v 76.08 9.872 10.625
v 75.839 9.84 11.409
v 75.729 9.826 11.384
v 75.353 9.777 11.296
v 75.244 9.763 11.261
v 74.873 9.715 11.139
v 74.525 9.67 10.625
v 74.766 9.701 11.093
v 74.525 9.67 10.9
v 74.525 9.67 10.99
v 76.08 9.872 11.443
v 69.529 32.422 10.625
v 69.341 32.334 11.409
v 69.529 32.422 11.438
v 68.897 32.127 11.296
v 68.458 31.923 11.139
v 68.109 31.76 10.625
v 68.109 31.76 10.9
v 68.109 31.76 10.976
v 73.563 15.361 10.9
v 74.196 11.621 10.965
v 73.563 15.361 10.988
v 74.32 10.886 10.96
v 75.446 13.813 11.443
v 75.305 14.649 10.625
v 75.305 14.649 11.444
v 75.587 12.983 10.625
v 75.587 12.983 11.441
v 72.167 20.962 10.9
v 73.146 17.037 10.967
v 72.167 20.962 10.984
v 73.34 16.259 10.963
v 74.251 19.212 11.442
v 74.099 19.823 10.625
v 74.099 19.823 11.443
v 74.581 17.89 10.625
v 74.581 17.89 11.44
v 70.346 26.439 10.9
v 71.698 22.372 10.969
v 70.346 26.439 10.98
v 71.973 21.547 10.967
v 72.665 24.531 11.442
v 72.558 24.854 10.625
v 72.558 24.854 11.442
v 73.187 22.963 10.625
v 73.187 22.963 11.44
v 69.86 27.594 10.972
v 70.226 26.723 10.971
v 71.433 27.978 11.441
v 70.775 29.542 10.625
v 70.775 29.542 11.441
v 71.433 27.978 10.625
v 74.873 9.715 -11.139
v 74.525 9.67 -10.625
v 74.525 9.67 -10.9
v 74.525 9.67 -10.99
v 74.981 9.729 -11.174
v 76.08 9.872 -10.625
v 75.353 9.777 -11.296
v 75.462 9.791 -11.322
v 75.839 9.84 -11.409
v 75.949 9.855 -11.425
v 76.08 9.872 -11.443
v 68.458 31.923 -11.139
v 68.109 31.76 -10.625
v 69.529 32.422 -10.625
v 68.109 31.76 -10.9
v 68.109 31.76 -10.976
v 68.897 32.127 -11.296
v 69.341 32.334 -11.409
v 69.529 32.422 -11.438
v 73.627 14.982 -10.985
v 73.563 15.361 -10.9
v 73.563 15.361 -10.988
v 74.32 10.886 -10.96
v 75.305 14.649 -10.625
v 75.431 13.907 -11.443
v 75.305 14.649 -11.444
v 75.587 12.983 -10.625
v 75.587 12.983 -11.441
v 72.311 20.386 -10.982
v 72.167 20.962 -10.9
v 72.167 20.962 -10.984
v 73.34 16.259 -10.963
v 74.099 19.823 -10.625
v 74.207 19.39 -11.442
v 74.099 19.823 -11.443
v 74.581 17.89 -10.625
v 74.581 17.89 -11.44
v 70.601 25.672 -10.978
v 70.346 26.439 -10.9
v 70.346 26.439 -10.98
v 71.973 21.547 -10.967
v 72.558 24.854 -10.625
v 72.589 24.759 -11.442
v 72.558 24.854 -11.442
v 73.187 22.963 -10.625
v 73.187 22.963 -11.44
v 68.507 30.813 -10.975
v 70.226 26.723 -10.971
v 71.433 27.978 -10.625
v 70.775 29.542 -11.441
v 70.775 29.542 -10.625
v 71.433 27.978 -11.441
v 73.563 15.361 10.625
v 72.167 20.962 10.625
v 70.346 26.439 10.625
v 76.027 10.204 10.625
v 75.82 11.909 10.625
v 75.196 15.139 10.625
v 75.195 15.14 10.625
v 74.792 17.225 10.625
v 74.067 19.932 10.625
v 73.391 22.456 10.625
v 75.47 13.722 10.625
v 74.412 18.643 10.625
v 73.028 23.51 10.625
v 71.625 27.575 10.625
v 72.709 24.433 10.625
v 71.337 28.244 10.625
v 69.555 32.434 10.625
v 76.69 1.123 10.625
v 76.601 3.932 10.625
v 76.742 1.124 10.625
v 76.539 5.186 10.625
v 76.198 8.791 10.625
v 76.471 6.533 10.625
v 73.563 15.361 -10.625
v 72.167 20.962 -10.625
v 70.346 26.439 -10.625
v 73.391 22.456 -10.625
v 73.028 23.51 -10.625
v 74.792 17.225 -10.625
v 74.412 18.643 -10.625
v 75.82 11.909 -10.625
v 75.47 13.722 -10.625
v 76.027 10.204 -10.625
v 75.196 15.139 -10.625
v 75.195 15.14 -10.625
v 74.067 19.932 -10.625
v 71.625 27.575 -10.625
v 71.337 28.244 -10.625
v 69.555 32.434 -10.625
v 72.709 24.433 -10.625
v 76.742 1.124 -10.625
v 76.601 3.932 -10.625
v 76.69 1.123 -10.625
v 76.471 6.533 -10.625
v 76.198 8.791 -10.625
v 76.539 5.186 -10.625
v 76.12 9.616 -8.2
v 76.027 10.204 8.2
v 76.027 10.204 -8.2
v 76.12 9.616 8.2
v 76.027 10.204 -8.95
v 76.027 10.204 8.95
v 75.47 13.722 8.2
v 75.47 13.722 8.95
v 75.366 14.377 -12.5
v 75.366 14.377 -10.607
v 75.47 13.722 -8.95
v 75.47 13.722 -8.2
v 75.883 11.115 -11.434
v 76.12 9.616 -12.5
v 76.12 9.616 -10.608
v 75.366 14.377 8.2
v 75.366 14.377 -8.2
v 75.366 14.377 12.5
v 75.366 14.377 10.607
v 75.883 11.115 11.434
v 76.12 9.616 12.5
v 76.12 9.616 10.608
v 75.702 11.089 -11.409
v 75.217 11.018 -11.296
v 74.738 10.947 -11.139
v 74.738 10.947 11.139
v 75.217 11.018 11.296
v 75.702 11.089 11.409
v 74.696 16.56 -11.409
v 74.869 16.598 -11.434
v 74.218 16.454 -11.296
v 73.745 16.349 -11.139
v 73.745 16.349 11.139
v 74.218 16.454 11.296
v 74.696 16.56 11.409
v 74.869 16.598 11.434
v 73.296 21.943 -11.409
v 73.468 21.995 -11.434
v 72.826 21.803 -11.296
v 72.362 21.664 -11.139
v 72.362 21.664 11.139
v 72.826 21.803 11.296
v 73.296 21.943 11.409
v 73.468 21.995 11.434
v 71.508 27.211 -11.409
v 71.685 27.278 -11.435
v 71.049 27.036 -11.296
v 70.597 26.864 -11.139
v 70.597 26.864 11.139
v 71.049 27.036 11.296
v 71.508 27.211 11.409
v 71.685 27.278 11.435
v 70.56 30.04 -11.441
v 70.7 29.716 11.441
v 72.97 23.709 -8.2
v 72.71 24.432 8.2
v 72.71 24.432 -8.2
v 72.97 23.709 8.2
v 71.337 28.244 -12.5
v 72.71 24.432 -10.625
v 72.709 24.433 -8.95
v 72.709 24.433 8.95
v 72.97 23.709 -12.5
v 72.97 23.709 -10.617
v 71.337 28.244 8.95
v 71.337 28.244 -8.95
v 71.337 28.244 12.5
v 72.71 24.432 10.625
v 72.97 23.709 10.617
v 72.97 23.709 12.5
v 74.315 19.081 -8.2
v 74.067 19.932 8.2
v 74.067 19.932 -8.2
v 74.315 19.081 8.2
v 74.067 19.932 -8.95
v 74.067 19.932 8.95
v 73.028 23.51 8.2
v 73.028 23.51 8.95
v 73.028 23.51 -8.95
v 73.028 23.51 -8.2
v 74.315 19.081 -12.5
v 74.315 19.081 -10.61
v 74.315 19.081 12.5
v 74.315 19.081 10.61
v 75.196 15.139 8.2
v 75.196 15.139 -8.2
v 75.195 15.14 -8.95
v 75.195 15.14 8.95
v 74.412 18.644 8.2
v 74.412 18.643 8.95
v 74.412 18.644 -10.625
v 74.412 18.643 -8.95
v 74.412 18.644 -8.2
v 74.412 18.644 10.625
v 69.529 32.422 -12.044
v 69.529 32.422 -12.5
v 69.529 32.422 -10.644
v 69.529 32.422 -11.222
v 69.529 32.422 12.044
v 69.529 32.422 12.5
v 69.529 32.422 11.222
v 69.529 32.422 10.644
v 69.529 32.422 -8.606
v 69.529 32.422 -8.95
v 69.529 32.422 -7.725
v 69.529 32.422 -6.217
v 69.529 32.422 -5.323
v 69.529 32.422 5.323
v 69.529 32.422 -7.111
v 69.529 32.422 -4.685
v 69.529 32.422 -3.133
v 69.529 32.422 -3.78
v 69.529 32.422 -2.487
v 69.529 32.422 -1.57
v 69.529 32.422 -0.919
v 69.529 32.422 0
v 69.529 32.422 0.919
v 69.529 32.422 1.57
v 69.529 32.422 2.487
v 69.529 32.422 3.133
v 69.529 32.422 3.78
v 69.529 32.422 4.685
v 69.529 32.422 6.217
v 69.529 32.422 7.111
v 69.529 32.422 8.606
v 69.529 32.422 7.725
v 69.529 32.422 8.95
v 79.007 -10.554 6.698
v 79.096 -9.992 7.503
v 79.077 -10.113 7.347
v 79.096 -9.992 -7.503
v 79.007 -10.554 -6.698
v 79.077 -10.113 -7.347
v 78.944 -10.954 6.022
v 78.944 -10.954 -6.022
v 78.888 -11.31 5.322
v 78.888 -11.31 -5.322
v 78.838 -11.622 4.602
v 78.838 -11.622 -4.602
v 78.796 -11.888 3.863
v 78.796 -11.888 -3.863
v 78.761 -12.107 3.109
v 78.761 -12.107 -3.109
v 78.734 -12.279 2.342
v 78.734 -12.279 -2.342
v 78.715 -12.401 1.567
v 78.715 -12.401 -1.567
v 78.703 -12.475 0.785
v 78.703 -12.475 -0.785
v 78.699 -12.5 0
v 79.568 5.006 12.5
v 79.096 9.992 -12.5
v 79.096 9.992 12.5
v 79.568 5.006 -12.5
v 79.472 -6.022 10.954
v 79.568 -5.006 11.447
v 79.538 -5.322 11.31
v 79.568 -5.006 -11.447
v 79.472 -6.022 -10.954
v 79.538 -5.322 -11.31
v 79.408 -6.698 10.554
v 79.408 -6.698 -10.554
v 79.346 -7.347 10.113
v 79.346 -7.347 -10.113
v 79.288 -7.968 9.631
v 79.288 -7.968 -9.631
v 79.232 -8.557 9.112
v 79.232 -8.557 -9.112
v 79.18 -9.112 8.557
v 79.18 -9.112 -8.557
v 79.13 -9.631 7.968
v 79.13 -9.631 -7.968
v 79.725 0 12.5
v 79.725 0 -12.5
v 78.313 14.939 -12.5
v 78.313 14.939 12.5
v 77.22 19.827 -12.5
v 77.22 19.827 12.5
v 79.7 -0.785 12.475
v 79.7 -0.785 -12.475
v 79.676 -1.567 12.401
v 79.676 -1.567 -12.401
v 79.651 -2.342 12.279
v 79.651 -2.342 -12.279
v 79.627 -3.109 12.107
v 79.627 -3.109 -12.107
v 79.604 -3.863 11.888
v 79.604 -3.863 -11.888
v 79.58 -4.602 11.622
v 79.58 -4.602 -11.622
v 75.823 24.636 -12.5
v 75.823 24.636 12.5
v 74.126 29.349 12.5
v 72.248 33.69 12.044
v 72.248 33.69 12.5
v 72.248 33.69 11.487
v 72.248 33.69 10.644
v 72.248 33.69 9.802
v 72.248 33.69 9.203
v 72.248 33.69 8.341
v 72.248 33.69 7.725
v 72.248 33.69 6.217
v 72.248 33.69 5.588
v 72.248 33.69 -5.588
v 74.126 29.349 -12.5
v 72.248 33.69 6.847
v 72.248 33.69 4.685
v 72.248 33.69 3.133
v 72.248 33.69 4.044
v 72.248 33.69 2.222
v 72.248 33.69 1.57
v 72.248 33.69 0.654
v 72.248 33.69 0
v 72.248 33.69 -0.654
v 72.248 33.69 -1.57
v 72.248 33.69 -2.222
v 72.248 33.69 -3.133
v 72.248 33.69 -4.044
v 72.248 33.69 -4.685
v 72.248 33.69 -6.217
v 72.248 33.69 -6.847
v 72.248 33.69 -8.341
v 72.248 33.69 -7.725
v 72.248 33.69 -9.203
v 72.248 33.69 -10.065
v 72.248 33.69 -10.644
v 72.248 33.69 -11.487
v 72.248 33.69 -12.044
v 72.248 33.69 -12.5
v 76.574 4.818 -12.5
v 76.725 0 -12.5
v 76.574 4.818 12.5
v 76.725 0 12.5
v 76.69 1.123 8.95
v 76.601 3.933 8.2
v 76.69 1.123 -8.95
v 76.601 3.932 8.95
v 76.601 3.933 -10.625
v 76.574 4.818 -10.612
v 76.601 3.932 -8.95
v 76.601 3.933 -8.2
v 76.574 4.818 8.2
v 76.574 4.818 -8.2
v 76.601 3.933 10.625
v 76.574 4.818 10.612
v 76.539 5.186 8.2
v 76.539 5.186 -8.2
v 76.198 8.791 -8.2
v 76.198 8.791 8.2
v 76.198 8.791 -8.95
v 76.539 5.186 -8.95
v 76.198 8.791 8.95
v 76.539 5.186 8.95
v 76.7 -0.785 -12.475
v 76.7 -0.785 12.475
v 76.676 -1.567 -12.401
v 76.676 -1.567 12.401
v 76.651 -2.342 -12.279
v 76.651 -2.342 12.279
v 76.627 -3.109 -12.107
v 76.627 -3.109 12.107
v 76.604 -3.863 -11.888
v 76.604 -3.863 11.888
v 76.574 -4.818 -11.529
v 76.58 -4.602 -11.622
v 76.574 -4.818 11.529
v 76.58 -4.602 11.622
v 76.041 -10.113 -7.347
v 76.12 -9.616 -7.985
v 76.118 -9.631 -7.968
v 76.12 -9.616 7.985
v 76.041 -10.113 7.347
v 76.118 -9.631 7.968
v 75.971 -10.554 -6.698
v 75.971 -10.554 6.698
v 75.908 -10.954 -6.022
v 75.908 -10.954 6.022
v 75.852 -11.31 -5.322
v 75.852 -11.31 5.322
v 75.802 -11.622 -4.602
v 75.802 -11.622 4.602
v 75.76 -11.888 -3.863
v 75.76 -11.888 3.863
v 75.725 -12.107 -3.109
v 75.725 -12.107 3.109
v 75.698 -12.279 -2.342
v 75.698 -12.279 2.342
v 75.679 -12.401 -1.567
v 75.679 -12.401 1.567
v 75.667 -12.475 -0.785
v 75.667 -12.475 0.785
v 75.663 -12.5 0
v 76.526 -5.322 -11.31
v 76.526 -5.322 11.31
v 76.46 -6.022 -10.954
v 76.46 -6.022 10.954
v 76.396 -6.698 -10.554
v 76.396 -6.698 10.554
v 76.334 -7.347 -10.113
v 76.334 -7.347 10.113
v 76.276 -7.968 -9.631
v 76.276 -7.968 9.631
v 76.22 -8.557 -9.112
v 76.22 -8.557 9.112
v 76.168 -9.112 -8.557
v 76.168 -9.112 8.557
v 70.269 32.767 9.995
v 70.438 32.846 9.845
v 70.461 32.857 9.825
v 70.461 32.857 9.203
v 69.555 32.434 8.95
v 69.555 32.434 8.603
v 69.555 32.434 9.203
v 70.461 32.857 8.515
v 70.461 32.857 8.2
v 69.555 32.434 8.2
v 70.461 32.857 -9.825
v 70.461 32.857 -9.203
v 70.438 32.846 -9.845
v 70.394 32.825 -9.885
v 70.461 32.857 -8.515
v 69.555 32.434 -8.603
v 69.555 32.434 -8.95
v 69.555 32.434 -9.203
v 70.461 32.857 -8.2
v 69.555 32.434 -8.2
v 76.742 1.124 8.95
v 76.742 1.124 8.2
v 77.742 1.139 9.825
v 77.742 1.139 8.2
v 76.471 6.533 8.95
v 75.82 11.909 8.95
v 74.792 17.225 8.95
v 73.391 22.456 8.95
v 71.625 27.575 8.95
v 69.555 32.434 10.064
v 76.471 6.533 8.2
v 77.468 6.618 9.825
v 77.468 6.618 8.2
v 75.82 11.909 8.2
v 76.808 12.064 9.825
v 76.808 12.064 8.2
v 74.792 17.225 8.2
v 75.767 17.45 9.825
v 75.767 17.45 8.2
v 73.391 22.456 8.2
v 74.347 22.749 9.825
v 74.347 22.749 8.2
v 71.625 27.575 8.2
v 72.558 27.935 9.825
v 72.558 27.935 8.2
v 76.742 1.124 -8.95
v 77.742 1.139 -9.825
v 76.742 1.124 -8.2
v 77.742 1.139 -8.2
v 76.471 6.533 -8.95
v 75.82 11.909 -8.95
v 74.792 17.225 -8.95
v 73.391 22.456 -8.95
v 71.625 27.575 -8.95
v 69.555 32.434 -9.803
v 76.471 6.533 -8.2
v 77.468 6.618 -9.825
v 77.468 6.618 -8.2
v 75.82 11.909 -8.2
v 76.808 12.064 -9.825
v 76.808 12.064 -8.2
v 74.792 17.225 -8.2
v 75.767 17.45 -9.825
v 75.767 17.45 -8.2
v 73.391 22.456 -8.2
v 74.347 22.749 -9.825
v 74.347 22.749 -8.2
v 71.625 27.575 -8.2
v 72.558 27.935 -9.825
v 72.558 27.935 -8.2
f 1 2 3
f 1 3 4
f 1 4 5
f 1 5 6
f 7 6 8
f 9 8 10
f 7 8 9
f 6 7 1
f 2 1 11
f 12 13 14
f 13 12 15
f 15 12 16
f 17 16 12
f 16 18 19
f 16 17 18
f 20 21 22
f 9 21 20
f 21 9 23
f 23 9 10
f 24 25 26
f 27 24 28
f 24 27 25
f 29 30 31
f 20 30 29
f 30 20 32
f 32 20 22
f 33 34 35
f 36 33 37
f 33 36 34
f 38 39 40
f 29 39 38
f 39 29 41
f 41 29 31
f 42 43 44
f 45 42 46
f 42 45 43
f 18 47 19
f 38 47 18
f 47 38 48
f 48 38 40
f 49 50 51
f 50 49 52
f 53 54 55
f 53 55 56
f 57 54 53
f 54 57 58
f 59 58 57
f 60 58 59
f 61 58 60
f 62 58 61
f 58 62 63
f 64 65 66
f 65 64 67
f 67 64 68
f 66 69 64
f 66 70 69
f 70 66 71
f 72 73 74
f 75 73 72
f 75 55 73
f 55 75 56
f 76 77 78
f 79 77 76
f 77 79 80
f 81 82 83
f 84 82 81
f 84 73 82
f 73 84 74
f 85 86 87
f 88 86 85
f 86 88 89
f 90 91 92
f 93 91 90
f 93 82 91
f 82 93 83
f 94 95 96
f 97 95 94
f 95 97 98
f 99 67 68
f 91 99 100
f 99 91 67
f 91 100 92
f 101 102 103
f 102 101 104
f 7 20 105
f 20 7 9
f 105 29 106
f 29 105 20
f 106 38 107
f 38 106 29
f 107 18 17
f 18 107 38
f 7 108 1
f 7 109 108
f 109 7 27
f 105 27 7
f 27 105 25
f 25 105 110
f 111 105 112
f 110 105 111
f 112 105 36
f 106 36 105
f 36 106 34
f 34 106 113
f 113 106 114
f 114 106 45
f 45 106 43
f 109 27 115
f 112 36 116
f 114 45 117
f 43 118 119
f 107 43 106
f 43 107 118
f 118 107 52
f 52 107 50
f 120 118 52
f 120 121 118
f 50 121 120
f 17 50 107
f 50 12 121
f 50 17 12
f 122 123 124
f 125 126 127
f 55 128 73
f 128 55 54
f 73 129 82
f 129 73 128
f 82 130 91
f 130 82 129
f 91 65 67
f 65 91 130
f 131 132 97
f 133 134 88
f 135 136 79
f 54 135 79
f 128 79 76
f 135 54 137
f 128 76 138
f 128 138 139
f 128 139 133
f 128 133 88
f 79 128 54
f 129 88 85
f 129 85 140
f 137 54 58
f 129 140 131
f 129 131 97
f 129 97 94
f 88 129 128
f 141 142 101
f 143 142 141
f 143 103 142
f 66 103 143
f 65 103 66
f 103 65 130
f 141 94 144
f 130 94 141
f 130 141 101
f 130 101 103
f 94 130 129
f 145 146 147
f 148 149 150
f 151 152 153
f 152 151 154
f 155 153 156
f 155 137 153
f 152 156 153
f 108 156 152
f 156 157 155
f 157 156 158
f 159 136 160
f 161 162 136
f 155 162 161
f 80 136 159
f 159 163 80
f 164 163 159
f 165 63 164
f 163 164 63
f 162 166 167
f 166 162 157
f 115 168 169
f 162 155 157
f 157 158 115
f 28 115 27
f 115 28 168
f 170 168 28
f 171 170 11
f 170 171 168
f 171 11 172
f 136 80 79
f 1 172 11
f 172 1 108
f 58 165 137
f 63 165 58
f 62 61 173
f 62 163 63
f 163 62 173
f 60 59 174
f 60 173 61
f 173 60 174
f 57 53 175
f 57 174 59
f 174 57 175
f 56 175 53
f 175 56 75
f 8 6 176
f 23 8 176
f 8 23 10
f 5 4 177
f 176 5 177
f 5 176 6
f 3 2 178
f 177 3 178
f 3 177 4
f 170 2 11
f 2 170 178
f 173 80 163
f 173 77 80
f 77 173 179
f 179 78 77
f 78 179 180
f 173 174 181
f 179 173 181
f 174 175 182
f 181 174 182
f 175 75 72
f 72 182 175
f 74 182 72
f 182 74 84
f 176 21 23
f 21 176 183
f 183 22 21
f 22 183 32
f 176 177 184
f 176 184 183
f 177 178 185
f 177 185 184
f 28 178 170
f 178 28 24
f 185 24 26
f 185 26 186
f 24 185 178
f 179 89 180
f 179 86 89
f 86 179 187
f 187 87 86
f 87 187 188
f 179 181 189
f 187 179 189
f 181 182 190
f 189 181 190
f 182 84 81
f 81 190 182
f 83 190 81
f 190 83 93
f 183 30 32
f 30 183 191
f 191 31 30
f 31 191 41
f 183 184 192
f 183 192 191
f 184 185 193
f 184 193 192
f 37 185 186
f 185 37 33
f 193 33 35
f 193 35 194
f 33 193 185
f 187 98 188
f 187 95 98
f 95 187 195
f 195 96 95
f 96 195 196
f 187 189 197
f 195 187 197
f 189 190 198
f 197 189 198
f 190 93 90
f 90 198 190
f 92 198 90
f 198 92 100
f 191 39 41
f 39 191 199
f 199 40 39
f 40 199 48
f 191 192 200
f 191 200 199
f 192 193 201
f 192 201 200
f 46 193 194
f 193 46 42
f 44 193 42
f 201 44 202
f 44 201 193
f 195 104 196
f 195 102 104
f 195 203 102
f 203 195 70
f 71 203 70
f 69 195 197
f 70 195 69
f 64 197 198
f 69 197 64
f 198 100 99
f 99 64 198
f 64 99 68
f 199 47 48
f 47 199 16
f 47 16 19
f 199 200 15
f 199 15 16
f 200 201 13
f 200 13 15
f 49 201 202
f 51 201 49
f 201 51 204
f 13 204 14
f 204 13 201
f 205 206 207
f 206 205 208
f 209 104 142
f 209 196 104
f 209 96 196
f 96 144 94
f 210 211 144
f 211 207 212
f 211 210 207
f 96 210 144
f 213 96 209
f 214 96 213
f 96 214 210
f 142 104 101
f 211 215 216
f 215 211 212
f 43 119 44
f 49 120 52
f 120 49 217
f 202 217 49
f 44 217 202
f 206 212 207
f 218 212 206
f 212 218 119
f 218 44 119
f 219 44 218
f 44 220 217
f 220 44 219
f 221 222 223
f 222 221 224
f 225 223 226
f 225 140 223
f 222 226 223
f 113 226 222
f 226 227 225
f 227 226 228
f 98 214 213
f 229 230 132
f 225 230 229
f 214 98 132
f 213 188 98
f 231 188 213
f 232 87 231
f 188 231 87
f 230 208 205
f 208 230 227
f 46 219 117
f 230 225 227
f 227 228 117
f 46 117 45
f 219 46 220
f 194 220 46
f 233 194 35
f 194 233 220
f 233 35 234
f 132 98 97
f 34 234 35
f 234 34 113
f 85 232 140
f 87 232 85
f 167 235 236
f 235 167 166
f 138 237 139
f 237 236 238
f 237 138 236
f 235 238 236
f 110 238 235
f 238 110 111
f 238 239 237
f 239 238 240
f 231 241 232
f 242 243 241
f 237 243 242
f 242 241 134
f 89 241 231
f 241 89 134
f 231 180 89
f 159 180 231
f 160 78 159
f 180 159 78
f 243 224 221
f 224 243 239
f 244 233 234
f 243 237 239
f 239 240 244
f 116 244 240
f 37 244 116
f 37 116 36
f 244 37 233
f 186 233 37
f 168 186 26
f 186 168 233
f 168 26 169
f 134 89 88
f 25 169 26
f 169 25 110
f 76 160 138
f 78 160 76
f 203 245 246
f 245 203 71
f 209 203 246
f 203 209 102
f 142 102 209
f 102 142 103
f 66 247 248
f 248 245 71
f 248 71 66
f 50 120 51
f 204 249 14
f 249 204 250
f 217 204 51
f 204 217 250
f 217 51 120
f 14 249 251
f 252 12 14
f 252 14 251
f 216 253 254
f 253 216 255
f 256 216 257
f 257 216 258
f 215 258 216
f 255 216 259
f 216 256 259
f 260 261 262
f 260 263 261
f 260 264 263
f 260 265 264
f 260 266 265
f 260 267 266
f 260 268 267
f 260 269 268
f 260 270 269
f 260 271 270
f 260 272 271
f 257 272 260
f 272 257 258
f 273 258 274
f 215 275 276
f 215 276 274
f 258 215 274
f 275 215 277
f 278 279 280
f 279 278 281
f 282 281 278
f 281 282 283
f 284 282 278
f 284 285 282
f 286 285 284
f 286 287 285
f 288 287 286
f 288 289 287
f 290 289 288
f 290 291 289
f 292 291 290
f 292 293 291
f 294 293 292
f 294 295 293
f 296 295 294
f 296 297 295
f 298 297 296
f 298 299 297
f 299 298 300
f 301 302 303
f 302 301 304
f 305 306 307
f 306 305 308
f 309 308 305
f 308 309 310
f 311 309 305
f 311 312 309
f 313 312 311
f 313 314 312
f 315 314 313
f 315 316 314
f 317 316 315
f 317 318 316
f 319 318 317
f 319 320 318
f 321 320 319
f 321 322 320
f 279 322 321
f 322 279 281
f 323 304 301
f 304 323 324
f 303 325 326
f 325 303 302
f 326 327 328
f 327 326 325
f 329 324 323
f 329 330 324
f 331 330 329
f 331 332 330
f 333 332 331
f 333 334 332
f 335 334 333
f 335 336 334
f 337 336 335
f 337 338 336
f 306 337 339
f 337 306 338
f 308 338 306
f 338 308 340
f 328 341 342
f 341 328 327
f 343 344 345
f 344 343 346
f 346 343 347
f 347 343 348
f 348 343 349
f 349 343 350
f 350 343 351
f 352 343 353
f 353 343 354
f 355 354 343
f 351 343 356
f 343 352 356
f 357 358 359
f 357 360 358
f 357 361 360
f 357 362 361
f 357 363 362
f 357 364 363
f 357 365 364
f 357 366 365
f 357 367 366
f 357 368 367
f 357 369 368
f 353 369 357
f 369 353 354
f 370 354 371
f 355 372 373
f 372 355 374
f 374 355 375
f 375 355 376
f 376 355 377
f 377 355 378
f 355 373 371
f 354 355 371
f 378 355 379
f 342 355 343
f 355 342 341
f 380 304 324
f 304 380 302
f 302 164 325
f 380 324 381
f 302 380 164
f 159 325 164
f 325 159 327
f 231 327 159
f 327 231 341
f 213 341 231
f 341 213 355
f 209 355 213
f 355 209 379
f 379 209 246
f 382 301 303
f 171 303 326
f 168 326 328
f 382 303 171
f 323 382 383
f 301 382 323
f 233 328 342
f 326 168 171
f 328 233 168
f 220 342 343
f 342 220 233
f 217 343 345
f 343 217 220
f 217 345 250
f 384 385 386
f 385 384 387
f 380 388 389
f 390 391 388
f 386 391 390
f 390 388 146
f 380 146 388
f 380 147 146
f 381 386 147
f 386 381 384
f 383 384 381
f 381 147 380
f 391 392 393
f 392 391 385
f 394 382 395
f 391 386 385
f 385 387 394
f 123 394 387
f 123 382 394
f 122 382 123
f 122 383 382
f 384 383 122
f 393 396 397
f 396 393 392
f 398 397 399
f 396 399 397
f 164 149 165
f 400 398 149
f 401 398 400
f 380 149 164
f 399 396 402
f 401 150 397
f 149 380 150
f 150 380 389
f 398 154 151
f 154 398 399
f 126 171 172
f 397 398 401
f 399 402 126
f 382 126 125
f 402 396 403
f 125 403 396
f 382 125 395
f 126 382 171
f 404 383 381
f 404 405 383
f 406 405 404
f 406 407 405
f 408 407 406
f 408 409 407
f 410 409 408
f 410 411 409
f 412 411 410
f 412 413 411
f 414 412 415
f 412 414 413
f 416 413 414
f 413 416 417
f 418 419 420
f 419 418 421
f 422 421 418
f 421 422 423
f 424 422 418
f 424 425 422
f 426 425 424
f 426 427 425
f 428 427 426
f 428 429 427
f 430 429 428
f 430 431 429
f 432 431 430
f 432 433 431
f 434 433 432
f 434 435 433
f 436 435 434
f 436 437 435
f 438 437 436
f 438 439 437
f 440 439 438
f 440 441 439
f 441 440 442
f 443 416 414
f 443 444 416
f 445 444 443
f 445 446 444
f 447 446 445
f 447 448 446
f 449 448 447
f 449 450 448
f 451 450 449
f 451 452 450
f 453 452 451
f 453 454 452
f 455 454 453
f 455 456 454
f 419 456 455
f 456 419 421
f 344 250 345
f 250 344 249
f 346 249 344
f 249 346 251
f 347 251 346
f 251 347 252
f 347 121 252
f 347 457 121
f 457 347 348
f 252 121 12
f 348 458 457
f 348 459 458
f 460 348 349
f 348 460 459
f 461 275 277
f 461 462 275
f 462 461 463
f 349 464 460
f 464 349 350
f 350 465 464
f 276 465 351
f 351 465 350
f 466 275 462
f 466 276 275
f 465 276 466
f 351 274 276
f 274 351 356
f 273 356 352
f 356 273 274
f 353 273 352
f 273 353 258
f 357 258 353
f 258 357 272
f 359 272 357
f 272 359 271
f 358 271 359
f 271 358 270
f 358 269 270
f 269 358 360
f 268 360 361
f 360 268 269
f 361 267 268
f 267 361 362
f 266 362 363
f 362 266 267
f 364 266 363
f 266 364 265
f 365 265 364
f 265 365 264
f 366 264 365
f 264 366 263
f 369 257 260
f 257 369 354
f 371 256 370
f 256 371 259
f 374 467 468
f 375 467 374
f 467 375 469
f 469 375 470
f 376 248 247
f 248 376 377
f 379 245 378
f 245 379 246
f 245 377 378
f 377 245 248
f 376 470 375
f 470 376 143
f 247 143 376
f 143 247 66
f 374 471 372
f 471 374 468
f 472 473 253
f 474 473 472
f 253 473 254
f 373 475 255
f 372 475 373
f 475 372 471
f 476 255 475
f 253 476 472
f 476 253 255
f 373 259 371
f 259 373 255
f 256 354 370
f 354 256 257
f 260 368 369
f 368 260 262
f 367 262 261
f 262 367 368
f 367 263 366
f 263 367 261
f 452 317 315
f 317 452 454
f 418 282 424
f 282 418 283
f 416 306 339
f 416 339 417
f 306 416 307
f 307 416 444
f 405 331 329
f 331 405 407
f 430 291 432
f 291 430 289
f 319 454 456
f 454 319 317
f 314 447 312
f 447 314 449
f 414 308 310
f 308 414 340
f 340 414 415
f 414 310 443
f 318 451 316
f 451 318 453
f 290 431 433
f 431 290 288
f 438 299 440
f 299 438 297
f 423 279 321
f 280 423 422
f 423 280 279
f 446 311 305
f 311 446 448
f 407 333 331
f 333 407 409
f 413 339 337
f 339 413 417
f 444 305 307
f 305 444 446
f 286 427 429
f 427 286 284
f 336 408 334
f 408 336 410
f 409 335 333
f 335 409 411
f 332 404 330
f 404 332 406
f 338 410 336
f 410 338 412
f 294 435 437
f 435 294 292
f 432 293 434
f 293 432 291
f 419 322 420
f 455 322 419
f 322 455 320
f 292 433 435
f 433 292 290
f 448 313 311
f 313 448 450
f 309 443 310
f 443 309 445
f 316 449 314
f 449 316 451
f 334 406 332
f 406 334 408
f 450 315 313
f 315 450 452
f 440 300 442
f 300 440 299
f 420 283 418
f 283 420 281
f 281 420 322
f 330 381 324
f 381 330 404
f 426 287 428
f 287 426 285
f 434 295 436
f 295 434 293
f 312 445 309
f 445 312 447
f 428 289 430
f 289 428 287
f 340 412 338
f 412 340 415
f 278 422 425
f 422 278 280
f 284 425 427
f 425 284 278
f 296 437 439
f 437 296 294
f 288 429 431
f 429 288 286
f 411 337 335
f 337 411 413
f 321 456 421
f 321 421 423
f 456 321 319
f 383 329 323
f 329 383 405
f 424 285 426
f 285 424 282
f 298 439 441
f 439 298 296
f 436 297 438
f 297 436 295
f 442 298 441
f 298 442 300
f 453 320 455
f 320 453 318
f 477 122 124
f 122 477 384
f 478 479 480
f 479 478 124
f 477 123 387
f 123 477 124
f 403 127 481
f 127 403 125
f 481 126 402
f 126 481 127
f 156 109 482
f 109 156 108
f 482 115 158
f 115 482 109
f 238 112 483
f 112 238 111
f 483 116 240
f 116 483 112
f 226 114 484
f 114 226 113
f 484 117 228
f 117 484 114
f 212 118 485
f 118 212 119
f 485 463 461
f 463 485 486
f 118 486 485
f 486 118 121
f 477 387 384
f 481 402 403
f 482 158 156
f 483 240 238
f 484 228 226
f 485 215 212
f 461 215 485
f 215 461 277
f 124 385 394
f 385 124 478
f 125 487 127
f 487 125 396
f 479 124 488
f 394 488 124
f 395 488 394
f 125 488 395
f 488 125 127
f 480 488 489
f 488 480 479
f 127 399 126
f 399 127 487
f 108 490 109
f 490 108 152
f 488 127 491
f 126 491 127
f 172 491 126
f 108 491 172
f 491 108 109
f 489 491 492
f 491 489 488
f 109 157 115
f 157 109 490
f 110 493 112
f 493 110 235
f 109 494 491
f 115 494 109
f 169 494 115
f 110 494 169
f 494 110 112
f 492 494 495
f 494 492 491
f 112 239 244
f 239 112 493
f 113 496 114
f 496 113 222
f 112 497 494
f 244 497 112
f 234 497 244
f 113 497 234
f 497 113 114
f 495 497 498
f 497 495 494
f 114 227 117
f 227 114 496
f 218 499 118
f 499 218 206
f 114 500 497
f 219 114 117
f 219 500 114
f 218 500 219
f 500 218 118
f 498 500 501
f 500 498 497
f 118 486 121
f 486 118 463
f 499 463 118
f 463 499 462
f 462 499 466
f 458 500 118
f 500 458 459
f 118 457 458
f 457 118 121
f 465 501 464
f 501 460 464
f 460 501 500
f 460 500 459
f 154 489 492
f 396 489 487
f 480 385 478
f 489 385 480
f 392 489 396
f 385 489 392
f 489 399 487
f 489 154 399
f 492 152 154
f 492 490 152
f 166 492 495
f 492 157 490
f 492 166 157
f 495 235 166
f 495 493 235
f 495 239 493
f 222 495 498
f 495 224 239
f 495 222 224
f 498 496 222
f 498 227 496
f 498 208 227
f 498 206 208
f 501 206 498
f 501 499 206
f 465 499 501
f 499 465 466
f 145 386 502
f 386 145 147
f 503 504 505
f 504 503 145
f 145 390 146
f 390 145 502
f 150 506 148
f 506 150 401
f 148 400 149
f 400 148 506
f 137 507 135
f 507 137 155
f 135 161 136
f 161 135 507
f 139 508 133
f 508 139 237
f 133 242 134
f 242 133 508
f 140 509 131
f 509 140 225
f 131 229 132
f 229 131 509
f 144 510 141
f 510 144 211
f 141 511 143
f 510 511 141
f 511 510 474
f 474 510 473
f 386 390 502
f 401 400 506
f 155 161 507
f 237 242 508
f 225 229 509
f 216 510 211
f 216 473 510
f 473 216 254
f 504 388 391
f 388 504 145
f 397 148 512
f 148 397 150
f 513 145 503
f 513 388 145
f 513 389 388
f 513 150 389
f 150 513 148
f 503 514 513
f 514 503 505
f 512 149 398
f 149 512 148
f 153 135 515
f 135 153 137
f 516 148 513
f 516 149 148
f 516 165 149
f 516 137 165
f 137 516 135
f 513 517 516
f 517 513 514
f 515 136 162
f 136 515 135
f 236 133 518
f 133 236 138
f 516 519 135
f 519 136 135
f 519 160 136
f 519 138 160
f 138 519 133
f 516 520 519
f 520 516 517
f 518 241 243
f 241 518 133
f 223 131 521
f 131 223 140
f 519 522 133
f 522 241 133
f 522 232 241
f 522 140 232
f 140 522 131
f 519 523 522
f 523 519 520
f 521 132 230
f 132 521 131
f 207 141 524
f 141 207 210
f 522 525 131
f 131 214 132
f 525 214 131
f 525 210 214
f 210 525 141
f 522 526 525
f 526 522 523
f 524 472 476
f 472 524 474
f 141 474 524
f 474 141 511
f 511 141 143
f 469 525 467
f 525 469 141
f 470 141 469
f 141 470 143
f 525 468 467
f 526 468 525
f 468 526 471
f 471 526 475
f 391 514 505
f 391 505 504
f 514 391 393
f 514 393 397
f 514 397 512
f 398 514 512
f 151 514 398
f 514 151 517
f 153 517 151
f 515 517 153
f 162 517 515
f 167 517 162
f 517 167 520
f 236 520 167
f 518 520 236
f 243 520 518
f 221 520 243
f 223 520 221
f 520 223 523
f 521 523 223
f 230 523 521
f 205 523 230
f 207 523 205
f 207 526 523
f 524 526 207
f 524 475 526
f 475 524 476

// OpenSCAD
// ----- ----- FONE DA ALINE ----- ----- //

// ----- ----- Declaração de Variáveis ----- ----- //
RC=155/2;
rC=25/2;
newrC=8.9;
rCil=0.99*RC;
esp=1;

esp2=1;
espx=4.8;

rfio=5.8/2;
angulo=25;
$fn = 100; // Number of fragments - higher = smoother

easy=0.75;
more1=2.2;
more2=2;
more3=0.95;
dede=16.4;

// ----- ----- Declaração de Funções ----- ----- //
module torus(R = RC, rz = rC, rx=newrC) {
    translate([R, 0, 0])resize(newsize=[2*rx,2*rz,0])circle(rz);
}

module sb(arco){
    rotate([0,0,(arco/RC)*(360/(2*PI))])translate([0,0,dede/2]) // sem buraquinho
    rotate_extrude(angle=angulo-(arco/RC)*(360/(2*PI))){
        union(){
            aux=newrC-espx-0.9;
            aux2=10.825-dede/2-esp;
            aux3=2;
            translate([RC-newrC+espx-aux3/2,0.9,0])square([aux/2+0.15+aux3/2,0.9]);
            translate([RC-newrC+espx-aux3,0,0])square([aux/2+0.15+aux3,0.9]);
            translate([RC-newrC+espx,0,0])square([aux/2+0.15,2.7]);
            translate([RC-newrC+espx+aux/2+0.15,easy,0])square([aux/2,3]);
            translate([RC-newrC+espx+aux+0.15,0,0])square([1,aux2]);
            translate([RC-newrC+espx+aux+0.15,aux2,0])polygon(points=[[0,0],[1,0],[0,0.8]]);
        }
    }
    mirror([0,0,1])rotate([0,0,(arco/RC)*(360/(2*PI))])translate([0,0,dede/2]) // sem buraquinho
    rotate_extrude(angle=angulo-(arco/RC)*(360/(2*PI))){
        union(){
            aux=newrC-espx-0.9;
            aux2=10.825-dede/2-esp;
            aux3=2;
            translate([RC-newrC+espx-aux3/2,0.9,0])square([aux/2+0.15+aux3/2,0.9]);
            translate([RC-newrC+espx-aux3,0,0])square([aux/2+0.15+aux3,0.9]);
            translate([RC-newrC+espx,0,0])square([aux/2+0.15,2.7]);
            translate([RC-newrC+espx+aux/2+0.15,easy,0])square([aux/2,3]);
            translate([RC-newrC+espx+aux+0.15,0,0])square([1,aux2]);
            translate([RC-newrC+espx+aux+0.15,aux2,0])polygon(points=[[0,0],[1,0],[0,0.8]]);
        }
    }
}

module cb(arco){
    rotate([0,0,(arco/RC)*(360/(2*PI))])translate([0,0,dede/2]) // com buraquinho
    rotate_extrude(angle=angulo-(arco/RC)*(360/(2*PI))){
        union(){
            aux=newrC-espx-0.9;
            aux2=10.825-dede/2-esp;
            aux3=2;
            translate([RC-newrC+espx-aux3/2,0.9,0])square([aux/2+0.15+aux3/2,0.9]);
            translate([RC-newrC+espx-aux3,0,0])square([aux/2+0.15+aux3,0.9]);
            translate([RC-newrC+espx,0,0])square([aux/2+0.15,2.7]);
            translate([RC-newrC+espx+aux/2+0.15,easy,0])square([aux/2,aux2+0.8-easy]);
            translate([RC-newrC+espx+aux+0.15,0,0])square([1,aux2]);
            translate([RC-newrC+espx+aux+0.15,aux2,0])polygon(points=[[0,0],[1,0],[0,0.8]]);
        }
    }
    mirror([0,0,1])rotate([0,0,(arco/RC)*(360/(2*PI))])translate([0,0,dede/2]) // com buraquinho
    rotate_extrude(angle=angulo-(arco/RC)*(360/(2*PI))){
        union(){
            aux=newrC-espx-0.9;
            aux2=10.825-dede/2-esp;
            aux3=2;
            translate([RC-newrC+espx-aux3/2,0.9,0])square([aux/2+0.15+aux3/2,0.9]);
            translate([RC-newrC+espx-aux3,0,0])square([aux/2+0.15+aux3,0.9]);
            translate([RC-newrC+espx,0,0])square([aux/2+0.15,2.7]);
            translate([RC-newrC+espx+aux/2+0.15,easy,0])square([aux/2,aux2+0.8-easy]);
            translate([RC-newrC+espx+aux+0.15,0,0])square([1,aux2]);
            translate([RC-newrC+espx+aux+0.15,aux2,0])polygon(points=[[0,0],[1,0],[0,0.8]]);
        }
    }
}

module pontinha(arcosb,arcocb){
    intersection(){
        union(){
            difference(){
                sb(arcosb);
                #cb(arcocb);
            }
        }
        union(){
            intersection(){
                #cylinder(2*rC,rCil,rCil,center=true);
                #translate([RC,0,0])resize(newsize=[2*newrC-2*esp,2*rC,0])sphere(rC-esp);
            }
            intersection(){
                #rotate_extrude(angle=angulo)torus(rz=rC-esp,rx=newrC-esp);
                #cylinder(2*rC,rCil,rCil,center=true);
            }
        }
    }
}

// ----- ----- MAIN ----- ----- //

//sb(30); // deslize sem buraquinho 
//cb(1); // deslize com buraquinho

/*
// Concave
difference(){
    union(){
        intersection(){
            cylinder(2*rC,rCil,rCil,center=true);
            translate([RC,0,0])resize(newsize=[2*newrC,2*rC,0])sphere(rC);
        }
        intersection(){
            rotate_extrude(angle=angulo)torus();
            cylinder(2*rC,rCil,rCil,center=true);
        }
    }
    union(){
        intersection(){
            #cylinder(2*rC,rCil,rCil,center=true);
            #translate([RC,0,0])resize(newsize=[2*newrC-2*esp,2*rC,0])sphere(rC-esp);
        }
        intersection(){
            #rotate_extrude(angle=angulo)torus(rz=rC-esp,rx=newrC-esp);
            #cylinder(2*rC,rCil,rCil,center=true);
        }
    }
}
*/
/*
// Cube Bloqueador
intersection(){
    rotate([0,0,angulo])translate([RC-newrC,-esp2,-rC])cube([espx,esp2,2*rC]);
    union(){
        intersection(){
            #cylinder(2*rC,rCil,rCil,center=true);
            #translate([RC,0,0])resize(newsize=[2*newrC-2*esp,2*rC,0])sphere(rC-esp);
        }
        intersection(){
            #rotate_extrude(angle=angulo)torus(rz=rC-esp,rx=newrC-esp);
            #cylinder(2*rC,rCil,rCil,center=true);
        }
    }
}
*/


pontinha(10,10);
esp3=3;
color("blue"){
difference(){
    union(){
        intersection(){
            difference(){
                cylinder(2*rC,rCil+esp3,rCil+esp3,center=true);
                #cylinder(2*rC,rCil,rCil,center=true);
            } 
            #rotate_extrude(angle=angulo)torus(R=rCil+esp3/2,rz=2*rC);
        }
        intersection(){
            translate([rCil,0,0])rotate([0,90,0])cylinder(3*esp3,rC,rC,center=true);
            difference(){
                cylinder(2*rC,rCil+esp3,rCil+esp3,center=true);
                #cylinder(2*rC,rCil,rCil,center=true);
            }
        }
    }
    #rotate([0,0,0.1])cb(1); // deslize com buraquinho
}
}
